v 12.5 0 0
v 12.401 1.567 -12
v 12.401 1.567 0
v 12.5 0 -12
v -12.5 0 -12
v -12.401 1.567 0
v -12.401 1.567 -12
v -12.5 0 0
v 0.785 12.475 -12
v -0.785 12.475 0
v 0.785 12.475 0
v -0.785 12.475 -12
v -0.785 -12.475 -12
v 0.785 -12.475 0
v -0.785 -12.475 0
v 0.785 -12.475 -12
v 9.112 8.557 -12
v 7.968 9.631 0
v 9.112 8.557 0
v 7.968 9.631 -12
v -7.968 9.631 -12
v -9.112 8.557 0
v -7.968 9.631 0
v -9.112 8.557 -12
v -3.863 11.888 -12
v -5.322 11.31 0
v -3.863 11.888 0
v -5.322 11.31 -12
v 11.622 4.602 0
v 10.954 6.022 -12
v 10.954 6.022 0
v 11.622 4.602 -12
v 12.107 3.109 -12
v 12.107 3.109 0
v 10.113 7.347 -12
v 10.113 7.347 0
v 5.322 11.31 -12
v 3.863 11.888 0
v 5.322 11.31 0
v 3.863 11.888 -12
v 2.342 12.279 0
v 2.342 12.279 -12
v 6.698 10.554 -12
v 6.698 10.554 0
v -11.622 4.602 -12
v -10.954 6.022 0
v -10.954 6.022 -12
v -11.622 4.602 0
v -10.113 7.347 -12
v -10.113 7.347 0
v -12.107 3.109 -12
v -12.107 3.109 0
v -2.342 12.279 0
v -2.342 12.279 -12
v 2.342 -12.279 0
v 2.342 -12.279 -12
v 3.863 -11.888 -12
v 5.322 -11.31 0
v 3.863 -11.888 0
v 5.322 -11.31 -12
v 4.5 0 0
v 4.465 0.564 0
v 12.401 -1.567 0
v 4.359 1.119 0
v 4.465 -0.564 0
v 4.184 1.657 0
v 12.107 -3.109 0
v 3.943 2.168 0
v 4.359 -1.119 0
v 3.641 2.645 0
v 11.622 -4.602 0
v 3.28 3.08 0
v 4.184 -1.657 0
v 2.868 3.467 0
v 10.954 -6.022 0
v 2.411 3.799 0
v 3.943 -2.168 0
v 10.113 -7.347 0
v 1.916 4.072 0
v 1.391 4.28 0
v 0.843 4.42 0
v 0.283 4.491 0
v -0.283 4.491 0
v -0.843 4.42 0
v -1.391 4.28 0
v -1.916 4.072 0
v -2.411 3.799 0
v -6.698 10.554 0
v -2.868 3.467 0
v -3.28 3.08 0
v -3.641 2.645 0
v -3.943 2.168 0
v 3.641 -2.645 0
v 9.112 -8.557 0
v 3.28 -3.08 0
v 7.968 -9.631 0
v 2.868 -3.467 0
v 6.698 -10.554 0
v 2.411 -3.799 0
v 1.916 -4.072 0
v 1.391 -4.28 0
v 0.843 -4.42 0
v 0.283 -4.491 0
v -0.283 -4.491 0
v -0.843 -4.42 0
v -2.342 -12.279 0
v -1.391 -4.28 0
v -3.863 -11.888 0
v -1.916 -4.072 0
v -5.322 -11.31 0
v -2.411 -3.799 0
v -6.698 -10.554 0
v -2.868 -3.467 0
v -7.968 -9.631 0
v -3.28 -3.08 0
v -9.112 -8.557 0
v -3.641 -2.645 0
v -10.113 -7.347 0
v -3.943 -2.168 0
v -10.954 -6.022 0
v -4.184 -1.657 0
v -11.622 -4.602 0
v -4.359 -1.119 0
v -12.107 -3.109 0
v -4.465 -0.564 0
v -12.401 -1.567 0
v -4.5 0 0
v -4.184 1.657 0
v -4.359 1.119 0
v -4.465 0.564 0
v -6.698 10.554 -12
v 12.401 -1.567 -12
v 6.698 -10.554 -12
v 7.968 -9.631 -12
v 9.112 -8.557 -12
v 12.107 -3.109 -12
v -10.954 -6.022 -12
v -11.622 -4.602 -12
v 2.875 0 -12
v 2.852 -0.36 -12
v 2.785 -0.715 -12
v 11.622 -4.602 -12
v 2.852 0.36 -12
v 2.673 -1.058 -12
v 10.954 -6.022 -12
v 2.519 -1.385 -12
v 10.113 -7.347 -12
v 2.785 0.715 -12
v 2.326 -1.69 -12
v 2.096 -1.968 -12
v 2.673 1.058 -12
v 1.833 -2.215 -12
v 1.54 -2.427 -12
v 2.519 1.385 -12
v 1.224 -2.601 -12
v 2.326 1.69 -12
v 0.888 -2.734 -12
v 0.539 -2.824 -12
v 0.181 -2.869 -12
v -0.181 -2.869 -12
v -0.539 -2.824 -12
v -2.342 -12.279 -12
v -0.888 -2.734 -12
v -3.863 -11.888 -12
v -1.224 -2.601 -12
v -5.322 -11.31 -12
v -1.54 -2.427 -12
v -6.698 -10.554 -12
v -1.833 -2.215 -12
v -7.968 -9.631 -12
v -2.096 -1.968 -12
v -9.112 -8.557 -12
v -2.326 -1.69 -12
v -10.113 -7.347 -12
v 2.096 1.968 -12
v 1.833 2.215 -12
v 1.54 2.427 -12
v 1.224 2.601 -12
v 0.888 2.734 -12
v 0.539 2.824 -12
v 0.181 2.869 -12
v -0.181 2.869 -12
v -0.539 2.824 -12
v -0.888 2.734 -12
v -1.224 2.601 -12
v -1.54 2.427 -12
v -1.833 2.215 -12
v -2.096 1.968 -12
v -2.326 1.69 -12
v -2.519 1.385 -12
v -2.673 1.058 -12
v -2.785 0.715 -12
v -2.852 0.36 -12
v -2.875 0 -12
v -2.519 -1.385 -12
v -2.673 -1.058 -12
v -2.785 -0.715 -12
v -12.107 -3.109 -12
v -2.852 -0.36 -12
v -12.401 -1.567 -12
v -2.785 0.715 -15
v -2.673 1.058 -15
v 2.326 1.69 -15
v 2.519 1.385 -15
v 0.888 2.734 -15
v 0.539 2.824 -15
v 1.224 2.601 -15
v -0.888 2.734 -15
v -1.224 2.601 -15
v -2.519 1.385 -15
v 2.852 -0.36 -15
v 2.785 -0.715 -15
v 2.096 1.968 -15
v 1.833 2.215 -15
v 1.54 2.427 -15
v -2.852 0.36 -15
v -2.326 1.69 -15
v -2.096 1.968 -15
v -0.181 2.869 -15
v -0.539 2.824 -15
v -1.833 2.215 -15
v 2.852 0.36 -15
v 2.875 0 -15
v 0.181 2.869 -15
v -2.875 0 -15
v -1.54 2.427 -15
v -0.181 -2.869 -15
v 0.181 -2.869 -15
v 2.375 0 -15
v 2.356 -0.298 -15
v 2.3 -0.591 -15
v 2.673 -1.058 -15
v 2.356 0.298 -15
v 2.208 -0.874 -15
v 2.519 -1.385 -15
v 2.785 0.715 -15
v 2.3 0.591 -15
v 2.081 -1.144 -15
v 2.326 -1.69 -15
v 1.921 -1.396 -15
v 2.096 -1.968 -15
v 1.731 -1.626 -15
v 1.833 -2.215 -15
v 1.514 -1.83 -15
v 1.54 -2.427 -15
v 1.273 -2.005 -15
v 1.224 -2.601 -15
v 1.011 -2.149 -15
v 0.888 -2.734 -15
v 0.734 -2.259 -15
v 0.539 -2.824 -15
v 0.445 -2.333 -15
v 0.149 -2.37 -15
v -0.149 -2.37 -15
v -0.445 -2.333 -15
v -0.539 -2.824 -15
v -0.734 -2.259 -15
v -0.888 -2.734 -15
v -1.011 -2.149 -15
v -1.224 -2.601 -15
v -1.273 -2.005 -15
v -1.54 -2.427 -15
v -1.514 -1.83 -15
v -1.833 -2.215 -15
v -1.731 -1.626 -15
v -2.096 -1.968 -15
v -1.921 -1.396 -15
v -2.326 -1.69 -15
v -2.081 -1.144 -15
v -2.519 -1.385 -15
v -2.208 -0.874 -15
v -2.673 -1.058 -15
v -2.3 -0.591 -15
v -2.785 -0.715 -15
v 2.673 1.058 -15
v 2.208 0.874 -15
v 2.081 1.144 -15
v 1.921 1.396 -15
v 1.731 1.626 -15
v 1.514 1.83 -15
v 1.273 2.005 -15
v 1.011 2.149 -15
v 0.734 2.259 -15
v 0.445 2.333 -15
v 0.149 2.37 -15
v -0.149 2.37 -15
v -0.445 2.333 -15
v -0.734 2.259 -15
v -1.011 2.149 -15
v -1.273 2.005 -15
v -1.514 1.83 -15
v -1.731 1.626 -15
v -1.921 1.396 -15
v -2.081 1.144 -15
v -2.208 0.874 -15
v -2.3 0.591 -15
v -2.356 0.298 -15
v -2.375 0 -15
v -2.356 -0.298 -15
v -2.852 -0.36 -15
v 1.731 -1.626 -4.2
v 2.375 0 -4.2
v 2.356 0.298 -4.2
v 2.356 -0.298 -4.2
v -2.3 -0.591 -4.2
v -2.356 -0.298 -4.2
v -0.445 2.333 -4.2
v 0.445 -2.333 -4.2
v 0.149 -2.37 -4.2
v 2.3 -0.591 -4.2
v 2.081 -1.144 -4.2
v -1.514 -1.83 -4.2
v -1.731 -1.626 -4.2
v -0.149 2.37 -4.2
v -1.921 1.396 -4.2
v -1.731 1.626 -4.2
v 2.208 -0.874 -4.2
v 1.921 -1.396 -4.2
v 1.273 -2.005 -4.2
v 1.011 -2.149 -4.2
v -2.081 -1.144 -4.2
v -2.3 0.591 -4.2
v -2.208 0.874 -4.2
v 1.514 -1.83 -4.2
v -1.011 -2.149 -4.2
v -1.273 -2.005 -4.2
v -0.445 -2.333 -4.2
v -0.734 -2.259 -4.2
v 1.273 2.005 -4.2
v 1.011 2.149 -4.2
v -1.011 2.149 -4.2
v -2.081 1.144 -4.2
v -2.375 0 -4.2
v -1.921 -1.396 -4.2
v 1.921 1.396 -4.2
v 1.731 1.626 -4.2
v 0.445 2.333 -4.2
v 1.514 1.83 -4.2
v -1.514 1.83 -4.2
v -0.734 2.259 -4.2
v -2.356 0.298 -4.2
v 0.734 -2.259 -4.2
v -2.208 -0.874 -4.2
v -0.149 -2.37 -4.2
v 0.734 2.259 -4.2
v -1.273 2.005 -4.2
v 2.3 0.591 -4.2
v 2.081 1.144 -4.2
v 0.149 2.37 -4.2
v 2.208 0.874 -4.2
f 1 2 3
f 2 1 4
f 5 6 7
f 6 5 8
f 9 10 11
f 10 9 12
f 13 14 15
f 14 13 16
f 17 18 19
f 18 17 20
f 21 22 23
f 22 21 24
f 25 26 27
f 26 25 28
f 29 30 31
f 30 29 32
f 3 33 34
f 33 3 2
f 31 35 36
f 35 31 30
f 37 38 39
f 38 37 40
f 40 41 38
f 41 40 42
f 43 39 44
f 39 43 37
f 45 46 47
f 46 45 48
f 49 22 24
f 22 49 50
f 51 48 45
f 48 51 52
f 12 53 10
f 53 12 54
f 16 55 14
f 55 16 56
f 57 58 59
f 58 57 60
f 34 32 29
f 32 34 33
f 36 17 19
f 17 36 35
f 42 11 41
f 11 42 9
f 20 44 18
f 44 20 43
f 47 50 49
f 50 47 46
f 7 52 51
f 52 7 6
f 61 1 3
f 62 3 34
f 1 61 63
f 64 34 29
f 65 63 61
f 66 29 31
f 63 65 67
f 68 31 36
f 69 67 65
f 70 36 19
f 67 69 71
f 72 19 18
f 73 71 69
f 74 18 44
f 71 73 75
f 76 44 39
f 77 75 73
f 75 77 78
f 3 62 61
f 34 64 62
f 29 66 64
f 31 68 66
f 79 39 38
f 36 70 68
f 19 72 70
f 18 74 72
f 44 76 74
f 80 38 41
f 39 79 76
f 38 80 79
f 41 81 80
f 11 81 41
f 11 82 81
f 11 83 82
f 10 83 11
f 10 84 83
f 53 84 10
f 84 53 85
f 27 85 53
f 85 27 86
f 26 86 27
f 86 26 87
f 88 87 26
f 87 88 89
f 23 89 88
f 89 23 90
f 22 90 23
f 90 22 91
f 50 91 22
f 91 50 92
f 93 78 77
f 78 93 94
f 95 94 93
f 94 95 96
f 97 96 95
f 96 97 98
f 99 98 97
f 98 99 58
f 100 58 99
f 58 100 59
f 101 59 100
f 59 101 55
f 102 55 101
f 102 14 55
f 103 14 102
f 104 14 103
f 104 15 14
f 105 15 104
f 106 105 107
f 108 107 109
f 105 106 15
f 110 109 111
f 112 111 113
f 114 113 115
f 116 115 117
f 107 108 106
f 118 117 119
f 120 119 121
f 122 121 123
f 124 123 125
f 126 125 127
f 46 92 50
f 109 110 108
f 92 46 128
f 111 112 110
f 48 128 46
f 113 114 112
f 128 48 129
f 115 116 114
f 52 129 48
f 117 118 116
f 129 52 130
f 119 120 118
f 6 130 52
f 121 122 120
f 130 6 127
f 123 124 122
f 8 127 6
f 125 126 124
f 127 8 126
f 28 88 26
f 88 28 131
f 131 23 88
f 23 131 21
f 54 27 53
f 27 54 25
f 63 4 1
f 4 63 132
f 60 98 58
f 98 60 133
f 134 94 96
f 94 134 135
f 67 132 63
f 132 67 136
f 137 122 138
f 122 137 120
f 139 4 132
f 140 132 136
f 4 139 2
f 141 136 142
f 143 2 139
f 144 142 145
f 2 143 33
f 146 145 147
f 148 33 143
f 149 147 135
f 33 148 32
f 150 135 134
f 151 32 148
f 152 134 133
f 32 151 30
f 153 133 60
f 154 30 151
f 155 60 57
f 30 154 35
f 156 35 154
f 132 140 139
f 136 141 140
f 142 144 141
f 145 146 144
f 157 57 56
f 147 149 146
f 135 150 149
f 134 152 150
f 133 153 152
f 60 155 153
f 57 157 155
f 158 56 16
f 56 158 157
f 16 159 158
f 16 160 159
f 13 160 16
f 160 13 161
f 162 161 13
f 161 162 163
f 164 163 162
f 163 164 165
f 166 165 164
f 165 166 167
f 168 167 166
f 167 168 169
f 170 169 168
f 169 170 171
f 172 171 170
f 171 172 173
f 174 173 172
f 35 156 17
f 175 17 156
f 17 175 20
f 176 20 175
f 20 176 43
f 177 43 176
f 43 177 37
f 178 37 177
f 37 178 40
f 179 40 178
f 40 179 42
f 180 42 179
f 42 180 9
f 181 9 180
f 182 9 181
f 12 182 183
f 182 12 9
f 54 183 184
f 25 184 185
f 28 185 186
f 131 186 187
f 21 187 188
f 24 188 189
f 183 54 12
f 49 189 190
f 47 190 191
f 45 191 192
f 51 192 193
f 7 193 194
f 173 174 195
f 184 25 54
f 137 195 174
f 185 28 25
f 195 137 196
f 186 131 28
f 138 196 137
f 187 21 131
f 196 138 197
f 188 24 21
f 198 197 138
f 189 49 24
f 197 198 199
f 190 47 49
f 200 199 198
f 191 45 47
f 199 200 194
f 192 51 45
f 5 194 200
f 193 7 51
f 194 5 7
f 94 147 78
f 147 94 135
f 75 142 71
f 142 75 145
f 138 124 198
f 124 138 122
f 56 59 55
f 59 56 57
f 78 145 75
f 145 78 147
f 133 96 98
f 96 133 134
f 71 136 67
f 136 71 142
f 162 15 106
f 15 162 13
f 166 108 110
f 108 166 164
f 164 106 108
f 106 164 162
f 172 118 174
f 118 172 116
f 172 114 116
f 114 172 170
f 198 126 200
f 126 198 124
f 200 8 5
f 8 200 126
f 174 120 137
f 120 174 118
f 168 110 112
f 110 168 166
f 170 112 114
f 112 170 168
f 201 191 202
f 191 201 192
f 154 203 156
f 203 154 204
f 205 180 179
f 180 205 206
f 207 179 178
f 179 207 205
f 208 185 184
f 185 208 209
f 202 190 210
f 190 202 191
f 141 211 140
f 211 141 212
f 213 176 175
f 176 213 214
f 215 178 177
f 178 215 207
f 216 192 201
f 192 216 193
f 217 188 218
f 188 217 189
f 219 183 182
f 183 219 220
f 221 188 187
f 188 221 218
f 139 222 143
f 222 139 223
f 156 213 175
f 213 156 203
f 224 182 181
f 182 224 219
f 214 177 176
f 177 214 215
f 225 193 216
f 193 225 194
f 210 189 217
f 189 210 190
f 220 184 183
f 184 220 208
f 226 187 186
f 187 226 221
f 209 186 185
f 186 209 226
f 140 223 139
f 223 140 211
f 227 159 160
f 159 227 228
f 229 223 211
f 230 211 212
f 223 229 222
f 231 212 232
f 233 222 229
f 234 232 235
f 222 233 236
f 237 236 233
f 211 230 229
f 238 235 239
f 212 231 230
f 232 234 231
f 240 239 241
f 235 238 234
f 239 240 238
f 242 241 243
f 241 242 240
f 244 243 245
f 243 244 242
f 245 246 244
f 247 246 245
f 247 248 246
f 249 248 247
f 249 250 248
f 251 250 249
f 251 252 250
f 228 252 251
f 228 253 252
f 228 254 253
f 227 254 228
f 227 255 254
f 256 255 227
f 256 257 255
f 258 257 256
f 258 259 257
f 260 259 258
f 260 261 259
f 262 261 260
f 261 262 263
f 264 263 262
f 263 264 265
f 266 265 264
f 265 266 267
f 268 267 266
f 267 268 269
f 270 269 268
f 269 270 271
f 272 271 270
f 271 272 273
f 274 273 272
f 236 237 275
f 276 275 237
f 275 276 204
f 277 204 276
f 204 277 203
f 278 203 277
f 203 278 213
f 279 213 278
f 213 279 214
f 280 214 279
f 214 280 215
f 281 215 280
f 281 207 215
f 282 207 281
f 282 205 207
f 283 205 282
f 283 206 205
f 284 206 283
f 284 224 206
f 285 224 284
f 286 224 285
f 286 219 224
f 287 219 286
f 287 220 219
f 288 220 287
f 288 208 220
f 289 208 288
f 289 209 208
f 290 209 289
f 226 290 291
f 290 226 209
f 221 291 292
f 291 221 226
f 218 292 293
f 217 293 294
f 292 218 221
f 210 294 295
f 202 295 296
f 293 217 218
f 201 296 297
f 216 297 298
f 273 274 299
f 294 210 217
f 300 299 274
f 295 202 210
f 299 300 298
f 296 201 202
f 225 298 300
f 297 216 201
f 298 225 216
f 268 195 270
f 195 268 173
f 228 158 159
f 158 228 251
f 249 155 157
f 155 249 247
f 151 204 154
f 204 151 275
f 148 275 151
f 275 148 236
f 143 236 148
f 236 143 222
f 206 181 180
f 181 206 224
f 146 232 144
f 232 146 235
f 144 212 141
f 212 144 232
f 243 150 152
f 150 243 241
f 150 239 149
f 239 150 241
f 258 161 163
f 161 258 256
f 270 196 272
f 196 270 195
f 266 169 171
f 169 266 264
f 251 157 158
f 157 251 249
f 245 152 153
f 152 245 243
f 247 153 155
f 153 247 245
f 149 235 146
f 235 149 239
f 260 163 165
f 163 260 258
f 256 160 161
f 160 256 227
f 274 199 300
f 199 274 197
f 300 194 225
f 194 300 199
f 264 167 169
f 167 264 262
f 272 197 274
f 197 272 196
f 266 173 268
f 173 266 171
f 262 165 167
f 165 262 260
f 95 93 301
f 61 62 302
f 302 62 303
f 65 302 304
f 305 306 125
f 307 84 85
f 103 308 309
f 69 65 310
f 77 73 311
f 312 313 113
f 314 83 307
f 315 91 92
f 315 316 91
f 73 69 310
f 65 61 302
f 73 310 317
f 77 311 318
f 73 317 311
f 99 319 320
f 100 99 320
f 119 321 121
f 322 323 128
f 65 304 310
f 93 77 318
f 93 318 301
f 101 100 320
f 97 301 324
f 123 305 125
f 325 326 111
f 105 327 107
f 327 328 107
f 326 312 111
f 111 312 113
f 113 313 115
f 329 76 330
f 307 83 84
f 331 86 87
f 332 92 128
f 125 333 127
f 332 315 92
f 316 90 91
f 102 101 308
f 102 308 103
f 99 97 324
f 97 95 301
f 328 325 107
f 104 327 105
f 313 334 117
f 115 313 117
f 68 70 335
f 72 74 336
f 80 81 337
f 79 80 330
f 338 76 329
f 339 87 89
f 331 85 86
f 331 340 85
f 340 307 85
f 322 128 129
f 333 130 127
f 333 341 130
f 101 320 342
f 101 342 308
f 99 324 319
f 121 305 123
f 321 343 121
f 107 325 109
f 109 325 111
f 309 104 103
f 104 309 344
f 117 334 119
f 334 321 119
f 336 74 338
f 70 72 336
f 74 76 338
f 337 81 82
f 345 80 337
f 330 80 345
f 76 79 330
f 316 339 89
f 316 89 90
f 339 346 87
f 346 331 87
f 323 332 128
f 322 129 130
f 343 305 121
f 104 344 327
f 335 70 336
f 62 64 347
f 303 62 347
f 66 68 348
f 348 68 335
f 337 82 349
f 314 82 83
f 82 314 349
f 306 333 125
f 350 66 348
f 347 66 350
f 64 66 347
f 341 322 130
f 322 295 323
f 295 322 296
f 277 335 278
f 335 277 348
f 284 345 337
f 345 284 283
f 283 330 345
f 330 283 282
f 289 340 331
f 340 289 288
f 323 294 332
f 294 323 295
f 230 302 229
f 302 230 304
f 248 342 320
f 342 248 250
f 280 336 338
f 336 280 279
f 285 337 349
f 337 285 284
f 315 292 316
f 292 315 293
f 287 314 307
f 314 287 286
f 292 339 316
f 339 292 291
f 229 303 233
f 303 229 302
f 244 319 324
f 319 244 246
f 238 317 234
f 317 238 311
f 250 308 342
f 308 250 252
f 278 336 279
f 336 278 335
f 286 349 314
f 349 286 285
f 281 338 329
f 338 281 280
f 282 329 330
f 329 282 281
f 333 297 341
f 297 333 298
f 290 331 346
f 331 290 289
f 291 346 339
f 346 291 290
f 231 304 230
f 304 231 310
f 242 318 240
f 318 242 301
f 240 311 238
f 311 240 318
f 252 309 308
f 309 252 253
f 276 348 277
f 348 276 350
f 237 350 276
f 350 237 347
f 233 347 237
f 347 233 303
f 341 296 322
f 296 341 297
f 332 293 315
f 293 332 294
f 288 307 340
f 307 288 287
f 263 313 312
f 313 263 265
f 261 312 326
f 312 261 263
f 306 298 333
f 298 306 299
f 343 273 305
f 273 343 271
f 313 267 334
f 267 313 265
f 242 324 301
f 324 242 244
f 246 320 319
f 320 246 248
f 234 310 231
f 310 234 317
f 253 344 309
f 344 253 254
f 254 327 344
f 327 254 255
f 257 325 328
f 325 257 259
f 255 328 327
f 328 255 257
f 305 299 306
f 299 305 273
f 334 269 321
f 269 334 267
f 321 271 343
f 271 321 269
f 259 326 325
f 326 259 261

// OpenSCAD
$fn = 50;


difference() {
	union() {
		translate(v = [0, 0, -12.0000000000]) {
			cylinder(h = 12, r = 12.5000000000);
		}
		#translate(v = [0, 0, -15.0000000000]) {
			cylinder(h = 15, r = 2.8750000000);
		}
	}
	union() {
		translate(v = [0, 0, 0]) {
			rotate(a = [0, 0, 0]) {
				difference() {
					union() {
						translate(v = [0, 0, -15.0000000000]) {
							cylinder(h = 15, r = 2.2500000000);
						}
						translate(v = [0, 0, -4.2000000000]) {
							cylinder(h = 4.2000000000, r1 = 2.3750000000, r2 = 4.5000000000);
						}
						translate(v = [0, 0, -15.0000000000]) {
							cylinder(h = 15, r = 2.3750000000);
						}
						translate(v = [0, 0, -15.0000000000]) {
							cylinder(h = 15, r = 2.2500000000);
						}
					}
					union();
				}
			}
		}
	}
}
